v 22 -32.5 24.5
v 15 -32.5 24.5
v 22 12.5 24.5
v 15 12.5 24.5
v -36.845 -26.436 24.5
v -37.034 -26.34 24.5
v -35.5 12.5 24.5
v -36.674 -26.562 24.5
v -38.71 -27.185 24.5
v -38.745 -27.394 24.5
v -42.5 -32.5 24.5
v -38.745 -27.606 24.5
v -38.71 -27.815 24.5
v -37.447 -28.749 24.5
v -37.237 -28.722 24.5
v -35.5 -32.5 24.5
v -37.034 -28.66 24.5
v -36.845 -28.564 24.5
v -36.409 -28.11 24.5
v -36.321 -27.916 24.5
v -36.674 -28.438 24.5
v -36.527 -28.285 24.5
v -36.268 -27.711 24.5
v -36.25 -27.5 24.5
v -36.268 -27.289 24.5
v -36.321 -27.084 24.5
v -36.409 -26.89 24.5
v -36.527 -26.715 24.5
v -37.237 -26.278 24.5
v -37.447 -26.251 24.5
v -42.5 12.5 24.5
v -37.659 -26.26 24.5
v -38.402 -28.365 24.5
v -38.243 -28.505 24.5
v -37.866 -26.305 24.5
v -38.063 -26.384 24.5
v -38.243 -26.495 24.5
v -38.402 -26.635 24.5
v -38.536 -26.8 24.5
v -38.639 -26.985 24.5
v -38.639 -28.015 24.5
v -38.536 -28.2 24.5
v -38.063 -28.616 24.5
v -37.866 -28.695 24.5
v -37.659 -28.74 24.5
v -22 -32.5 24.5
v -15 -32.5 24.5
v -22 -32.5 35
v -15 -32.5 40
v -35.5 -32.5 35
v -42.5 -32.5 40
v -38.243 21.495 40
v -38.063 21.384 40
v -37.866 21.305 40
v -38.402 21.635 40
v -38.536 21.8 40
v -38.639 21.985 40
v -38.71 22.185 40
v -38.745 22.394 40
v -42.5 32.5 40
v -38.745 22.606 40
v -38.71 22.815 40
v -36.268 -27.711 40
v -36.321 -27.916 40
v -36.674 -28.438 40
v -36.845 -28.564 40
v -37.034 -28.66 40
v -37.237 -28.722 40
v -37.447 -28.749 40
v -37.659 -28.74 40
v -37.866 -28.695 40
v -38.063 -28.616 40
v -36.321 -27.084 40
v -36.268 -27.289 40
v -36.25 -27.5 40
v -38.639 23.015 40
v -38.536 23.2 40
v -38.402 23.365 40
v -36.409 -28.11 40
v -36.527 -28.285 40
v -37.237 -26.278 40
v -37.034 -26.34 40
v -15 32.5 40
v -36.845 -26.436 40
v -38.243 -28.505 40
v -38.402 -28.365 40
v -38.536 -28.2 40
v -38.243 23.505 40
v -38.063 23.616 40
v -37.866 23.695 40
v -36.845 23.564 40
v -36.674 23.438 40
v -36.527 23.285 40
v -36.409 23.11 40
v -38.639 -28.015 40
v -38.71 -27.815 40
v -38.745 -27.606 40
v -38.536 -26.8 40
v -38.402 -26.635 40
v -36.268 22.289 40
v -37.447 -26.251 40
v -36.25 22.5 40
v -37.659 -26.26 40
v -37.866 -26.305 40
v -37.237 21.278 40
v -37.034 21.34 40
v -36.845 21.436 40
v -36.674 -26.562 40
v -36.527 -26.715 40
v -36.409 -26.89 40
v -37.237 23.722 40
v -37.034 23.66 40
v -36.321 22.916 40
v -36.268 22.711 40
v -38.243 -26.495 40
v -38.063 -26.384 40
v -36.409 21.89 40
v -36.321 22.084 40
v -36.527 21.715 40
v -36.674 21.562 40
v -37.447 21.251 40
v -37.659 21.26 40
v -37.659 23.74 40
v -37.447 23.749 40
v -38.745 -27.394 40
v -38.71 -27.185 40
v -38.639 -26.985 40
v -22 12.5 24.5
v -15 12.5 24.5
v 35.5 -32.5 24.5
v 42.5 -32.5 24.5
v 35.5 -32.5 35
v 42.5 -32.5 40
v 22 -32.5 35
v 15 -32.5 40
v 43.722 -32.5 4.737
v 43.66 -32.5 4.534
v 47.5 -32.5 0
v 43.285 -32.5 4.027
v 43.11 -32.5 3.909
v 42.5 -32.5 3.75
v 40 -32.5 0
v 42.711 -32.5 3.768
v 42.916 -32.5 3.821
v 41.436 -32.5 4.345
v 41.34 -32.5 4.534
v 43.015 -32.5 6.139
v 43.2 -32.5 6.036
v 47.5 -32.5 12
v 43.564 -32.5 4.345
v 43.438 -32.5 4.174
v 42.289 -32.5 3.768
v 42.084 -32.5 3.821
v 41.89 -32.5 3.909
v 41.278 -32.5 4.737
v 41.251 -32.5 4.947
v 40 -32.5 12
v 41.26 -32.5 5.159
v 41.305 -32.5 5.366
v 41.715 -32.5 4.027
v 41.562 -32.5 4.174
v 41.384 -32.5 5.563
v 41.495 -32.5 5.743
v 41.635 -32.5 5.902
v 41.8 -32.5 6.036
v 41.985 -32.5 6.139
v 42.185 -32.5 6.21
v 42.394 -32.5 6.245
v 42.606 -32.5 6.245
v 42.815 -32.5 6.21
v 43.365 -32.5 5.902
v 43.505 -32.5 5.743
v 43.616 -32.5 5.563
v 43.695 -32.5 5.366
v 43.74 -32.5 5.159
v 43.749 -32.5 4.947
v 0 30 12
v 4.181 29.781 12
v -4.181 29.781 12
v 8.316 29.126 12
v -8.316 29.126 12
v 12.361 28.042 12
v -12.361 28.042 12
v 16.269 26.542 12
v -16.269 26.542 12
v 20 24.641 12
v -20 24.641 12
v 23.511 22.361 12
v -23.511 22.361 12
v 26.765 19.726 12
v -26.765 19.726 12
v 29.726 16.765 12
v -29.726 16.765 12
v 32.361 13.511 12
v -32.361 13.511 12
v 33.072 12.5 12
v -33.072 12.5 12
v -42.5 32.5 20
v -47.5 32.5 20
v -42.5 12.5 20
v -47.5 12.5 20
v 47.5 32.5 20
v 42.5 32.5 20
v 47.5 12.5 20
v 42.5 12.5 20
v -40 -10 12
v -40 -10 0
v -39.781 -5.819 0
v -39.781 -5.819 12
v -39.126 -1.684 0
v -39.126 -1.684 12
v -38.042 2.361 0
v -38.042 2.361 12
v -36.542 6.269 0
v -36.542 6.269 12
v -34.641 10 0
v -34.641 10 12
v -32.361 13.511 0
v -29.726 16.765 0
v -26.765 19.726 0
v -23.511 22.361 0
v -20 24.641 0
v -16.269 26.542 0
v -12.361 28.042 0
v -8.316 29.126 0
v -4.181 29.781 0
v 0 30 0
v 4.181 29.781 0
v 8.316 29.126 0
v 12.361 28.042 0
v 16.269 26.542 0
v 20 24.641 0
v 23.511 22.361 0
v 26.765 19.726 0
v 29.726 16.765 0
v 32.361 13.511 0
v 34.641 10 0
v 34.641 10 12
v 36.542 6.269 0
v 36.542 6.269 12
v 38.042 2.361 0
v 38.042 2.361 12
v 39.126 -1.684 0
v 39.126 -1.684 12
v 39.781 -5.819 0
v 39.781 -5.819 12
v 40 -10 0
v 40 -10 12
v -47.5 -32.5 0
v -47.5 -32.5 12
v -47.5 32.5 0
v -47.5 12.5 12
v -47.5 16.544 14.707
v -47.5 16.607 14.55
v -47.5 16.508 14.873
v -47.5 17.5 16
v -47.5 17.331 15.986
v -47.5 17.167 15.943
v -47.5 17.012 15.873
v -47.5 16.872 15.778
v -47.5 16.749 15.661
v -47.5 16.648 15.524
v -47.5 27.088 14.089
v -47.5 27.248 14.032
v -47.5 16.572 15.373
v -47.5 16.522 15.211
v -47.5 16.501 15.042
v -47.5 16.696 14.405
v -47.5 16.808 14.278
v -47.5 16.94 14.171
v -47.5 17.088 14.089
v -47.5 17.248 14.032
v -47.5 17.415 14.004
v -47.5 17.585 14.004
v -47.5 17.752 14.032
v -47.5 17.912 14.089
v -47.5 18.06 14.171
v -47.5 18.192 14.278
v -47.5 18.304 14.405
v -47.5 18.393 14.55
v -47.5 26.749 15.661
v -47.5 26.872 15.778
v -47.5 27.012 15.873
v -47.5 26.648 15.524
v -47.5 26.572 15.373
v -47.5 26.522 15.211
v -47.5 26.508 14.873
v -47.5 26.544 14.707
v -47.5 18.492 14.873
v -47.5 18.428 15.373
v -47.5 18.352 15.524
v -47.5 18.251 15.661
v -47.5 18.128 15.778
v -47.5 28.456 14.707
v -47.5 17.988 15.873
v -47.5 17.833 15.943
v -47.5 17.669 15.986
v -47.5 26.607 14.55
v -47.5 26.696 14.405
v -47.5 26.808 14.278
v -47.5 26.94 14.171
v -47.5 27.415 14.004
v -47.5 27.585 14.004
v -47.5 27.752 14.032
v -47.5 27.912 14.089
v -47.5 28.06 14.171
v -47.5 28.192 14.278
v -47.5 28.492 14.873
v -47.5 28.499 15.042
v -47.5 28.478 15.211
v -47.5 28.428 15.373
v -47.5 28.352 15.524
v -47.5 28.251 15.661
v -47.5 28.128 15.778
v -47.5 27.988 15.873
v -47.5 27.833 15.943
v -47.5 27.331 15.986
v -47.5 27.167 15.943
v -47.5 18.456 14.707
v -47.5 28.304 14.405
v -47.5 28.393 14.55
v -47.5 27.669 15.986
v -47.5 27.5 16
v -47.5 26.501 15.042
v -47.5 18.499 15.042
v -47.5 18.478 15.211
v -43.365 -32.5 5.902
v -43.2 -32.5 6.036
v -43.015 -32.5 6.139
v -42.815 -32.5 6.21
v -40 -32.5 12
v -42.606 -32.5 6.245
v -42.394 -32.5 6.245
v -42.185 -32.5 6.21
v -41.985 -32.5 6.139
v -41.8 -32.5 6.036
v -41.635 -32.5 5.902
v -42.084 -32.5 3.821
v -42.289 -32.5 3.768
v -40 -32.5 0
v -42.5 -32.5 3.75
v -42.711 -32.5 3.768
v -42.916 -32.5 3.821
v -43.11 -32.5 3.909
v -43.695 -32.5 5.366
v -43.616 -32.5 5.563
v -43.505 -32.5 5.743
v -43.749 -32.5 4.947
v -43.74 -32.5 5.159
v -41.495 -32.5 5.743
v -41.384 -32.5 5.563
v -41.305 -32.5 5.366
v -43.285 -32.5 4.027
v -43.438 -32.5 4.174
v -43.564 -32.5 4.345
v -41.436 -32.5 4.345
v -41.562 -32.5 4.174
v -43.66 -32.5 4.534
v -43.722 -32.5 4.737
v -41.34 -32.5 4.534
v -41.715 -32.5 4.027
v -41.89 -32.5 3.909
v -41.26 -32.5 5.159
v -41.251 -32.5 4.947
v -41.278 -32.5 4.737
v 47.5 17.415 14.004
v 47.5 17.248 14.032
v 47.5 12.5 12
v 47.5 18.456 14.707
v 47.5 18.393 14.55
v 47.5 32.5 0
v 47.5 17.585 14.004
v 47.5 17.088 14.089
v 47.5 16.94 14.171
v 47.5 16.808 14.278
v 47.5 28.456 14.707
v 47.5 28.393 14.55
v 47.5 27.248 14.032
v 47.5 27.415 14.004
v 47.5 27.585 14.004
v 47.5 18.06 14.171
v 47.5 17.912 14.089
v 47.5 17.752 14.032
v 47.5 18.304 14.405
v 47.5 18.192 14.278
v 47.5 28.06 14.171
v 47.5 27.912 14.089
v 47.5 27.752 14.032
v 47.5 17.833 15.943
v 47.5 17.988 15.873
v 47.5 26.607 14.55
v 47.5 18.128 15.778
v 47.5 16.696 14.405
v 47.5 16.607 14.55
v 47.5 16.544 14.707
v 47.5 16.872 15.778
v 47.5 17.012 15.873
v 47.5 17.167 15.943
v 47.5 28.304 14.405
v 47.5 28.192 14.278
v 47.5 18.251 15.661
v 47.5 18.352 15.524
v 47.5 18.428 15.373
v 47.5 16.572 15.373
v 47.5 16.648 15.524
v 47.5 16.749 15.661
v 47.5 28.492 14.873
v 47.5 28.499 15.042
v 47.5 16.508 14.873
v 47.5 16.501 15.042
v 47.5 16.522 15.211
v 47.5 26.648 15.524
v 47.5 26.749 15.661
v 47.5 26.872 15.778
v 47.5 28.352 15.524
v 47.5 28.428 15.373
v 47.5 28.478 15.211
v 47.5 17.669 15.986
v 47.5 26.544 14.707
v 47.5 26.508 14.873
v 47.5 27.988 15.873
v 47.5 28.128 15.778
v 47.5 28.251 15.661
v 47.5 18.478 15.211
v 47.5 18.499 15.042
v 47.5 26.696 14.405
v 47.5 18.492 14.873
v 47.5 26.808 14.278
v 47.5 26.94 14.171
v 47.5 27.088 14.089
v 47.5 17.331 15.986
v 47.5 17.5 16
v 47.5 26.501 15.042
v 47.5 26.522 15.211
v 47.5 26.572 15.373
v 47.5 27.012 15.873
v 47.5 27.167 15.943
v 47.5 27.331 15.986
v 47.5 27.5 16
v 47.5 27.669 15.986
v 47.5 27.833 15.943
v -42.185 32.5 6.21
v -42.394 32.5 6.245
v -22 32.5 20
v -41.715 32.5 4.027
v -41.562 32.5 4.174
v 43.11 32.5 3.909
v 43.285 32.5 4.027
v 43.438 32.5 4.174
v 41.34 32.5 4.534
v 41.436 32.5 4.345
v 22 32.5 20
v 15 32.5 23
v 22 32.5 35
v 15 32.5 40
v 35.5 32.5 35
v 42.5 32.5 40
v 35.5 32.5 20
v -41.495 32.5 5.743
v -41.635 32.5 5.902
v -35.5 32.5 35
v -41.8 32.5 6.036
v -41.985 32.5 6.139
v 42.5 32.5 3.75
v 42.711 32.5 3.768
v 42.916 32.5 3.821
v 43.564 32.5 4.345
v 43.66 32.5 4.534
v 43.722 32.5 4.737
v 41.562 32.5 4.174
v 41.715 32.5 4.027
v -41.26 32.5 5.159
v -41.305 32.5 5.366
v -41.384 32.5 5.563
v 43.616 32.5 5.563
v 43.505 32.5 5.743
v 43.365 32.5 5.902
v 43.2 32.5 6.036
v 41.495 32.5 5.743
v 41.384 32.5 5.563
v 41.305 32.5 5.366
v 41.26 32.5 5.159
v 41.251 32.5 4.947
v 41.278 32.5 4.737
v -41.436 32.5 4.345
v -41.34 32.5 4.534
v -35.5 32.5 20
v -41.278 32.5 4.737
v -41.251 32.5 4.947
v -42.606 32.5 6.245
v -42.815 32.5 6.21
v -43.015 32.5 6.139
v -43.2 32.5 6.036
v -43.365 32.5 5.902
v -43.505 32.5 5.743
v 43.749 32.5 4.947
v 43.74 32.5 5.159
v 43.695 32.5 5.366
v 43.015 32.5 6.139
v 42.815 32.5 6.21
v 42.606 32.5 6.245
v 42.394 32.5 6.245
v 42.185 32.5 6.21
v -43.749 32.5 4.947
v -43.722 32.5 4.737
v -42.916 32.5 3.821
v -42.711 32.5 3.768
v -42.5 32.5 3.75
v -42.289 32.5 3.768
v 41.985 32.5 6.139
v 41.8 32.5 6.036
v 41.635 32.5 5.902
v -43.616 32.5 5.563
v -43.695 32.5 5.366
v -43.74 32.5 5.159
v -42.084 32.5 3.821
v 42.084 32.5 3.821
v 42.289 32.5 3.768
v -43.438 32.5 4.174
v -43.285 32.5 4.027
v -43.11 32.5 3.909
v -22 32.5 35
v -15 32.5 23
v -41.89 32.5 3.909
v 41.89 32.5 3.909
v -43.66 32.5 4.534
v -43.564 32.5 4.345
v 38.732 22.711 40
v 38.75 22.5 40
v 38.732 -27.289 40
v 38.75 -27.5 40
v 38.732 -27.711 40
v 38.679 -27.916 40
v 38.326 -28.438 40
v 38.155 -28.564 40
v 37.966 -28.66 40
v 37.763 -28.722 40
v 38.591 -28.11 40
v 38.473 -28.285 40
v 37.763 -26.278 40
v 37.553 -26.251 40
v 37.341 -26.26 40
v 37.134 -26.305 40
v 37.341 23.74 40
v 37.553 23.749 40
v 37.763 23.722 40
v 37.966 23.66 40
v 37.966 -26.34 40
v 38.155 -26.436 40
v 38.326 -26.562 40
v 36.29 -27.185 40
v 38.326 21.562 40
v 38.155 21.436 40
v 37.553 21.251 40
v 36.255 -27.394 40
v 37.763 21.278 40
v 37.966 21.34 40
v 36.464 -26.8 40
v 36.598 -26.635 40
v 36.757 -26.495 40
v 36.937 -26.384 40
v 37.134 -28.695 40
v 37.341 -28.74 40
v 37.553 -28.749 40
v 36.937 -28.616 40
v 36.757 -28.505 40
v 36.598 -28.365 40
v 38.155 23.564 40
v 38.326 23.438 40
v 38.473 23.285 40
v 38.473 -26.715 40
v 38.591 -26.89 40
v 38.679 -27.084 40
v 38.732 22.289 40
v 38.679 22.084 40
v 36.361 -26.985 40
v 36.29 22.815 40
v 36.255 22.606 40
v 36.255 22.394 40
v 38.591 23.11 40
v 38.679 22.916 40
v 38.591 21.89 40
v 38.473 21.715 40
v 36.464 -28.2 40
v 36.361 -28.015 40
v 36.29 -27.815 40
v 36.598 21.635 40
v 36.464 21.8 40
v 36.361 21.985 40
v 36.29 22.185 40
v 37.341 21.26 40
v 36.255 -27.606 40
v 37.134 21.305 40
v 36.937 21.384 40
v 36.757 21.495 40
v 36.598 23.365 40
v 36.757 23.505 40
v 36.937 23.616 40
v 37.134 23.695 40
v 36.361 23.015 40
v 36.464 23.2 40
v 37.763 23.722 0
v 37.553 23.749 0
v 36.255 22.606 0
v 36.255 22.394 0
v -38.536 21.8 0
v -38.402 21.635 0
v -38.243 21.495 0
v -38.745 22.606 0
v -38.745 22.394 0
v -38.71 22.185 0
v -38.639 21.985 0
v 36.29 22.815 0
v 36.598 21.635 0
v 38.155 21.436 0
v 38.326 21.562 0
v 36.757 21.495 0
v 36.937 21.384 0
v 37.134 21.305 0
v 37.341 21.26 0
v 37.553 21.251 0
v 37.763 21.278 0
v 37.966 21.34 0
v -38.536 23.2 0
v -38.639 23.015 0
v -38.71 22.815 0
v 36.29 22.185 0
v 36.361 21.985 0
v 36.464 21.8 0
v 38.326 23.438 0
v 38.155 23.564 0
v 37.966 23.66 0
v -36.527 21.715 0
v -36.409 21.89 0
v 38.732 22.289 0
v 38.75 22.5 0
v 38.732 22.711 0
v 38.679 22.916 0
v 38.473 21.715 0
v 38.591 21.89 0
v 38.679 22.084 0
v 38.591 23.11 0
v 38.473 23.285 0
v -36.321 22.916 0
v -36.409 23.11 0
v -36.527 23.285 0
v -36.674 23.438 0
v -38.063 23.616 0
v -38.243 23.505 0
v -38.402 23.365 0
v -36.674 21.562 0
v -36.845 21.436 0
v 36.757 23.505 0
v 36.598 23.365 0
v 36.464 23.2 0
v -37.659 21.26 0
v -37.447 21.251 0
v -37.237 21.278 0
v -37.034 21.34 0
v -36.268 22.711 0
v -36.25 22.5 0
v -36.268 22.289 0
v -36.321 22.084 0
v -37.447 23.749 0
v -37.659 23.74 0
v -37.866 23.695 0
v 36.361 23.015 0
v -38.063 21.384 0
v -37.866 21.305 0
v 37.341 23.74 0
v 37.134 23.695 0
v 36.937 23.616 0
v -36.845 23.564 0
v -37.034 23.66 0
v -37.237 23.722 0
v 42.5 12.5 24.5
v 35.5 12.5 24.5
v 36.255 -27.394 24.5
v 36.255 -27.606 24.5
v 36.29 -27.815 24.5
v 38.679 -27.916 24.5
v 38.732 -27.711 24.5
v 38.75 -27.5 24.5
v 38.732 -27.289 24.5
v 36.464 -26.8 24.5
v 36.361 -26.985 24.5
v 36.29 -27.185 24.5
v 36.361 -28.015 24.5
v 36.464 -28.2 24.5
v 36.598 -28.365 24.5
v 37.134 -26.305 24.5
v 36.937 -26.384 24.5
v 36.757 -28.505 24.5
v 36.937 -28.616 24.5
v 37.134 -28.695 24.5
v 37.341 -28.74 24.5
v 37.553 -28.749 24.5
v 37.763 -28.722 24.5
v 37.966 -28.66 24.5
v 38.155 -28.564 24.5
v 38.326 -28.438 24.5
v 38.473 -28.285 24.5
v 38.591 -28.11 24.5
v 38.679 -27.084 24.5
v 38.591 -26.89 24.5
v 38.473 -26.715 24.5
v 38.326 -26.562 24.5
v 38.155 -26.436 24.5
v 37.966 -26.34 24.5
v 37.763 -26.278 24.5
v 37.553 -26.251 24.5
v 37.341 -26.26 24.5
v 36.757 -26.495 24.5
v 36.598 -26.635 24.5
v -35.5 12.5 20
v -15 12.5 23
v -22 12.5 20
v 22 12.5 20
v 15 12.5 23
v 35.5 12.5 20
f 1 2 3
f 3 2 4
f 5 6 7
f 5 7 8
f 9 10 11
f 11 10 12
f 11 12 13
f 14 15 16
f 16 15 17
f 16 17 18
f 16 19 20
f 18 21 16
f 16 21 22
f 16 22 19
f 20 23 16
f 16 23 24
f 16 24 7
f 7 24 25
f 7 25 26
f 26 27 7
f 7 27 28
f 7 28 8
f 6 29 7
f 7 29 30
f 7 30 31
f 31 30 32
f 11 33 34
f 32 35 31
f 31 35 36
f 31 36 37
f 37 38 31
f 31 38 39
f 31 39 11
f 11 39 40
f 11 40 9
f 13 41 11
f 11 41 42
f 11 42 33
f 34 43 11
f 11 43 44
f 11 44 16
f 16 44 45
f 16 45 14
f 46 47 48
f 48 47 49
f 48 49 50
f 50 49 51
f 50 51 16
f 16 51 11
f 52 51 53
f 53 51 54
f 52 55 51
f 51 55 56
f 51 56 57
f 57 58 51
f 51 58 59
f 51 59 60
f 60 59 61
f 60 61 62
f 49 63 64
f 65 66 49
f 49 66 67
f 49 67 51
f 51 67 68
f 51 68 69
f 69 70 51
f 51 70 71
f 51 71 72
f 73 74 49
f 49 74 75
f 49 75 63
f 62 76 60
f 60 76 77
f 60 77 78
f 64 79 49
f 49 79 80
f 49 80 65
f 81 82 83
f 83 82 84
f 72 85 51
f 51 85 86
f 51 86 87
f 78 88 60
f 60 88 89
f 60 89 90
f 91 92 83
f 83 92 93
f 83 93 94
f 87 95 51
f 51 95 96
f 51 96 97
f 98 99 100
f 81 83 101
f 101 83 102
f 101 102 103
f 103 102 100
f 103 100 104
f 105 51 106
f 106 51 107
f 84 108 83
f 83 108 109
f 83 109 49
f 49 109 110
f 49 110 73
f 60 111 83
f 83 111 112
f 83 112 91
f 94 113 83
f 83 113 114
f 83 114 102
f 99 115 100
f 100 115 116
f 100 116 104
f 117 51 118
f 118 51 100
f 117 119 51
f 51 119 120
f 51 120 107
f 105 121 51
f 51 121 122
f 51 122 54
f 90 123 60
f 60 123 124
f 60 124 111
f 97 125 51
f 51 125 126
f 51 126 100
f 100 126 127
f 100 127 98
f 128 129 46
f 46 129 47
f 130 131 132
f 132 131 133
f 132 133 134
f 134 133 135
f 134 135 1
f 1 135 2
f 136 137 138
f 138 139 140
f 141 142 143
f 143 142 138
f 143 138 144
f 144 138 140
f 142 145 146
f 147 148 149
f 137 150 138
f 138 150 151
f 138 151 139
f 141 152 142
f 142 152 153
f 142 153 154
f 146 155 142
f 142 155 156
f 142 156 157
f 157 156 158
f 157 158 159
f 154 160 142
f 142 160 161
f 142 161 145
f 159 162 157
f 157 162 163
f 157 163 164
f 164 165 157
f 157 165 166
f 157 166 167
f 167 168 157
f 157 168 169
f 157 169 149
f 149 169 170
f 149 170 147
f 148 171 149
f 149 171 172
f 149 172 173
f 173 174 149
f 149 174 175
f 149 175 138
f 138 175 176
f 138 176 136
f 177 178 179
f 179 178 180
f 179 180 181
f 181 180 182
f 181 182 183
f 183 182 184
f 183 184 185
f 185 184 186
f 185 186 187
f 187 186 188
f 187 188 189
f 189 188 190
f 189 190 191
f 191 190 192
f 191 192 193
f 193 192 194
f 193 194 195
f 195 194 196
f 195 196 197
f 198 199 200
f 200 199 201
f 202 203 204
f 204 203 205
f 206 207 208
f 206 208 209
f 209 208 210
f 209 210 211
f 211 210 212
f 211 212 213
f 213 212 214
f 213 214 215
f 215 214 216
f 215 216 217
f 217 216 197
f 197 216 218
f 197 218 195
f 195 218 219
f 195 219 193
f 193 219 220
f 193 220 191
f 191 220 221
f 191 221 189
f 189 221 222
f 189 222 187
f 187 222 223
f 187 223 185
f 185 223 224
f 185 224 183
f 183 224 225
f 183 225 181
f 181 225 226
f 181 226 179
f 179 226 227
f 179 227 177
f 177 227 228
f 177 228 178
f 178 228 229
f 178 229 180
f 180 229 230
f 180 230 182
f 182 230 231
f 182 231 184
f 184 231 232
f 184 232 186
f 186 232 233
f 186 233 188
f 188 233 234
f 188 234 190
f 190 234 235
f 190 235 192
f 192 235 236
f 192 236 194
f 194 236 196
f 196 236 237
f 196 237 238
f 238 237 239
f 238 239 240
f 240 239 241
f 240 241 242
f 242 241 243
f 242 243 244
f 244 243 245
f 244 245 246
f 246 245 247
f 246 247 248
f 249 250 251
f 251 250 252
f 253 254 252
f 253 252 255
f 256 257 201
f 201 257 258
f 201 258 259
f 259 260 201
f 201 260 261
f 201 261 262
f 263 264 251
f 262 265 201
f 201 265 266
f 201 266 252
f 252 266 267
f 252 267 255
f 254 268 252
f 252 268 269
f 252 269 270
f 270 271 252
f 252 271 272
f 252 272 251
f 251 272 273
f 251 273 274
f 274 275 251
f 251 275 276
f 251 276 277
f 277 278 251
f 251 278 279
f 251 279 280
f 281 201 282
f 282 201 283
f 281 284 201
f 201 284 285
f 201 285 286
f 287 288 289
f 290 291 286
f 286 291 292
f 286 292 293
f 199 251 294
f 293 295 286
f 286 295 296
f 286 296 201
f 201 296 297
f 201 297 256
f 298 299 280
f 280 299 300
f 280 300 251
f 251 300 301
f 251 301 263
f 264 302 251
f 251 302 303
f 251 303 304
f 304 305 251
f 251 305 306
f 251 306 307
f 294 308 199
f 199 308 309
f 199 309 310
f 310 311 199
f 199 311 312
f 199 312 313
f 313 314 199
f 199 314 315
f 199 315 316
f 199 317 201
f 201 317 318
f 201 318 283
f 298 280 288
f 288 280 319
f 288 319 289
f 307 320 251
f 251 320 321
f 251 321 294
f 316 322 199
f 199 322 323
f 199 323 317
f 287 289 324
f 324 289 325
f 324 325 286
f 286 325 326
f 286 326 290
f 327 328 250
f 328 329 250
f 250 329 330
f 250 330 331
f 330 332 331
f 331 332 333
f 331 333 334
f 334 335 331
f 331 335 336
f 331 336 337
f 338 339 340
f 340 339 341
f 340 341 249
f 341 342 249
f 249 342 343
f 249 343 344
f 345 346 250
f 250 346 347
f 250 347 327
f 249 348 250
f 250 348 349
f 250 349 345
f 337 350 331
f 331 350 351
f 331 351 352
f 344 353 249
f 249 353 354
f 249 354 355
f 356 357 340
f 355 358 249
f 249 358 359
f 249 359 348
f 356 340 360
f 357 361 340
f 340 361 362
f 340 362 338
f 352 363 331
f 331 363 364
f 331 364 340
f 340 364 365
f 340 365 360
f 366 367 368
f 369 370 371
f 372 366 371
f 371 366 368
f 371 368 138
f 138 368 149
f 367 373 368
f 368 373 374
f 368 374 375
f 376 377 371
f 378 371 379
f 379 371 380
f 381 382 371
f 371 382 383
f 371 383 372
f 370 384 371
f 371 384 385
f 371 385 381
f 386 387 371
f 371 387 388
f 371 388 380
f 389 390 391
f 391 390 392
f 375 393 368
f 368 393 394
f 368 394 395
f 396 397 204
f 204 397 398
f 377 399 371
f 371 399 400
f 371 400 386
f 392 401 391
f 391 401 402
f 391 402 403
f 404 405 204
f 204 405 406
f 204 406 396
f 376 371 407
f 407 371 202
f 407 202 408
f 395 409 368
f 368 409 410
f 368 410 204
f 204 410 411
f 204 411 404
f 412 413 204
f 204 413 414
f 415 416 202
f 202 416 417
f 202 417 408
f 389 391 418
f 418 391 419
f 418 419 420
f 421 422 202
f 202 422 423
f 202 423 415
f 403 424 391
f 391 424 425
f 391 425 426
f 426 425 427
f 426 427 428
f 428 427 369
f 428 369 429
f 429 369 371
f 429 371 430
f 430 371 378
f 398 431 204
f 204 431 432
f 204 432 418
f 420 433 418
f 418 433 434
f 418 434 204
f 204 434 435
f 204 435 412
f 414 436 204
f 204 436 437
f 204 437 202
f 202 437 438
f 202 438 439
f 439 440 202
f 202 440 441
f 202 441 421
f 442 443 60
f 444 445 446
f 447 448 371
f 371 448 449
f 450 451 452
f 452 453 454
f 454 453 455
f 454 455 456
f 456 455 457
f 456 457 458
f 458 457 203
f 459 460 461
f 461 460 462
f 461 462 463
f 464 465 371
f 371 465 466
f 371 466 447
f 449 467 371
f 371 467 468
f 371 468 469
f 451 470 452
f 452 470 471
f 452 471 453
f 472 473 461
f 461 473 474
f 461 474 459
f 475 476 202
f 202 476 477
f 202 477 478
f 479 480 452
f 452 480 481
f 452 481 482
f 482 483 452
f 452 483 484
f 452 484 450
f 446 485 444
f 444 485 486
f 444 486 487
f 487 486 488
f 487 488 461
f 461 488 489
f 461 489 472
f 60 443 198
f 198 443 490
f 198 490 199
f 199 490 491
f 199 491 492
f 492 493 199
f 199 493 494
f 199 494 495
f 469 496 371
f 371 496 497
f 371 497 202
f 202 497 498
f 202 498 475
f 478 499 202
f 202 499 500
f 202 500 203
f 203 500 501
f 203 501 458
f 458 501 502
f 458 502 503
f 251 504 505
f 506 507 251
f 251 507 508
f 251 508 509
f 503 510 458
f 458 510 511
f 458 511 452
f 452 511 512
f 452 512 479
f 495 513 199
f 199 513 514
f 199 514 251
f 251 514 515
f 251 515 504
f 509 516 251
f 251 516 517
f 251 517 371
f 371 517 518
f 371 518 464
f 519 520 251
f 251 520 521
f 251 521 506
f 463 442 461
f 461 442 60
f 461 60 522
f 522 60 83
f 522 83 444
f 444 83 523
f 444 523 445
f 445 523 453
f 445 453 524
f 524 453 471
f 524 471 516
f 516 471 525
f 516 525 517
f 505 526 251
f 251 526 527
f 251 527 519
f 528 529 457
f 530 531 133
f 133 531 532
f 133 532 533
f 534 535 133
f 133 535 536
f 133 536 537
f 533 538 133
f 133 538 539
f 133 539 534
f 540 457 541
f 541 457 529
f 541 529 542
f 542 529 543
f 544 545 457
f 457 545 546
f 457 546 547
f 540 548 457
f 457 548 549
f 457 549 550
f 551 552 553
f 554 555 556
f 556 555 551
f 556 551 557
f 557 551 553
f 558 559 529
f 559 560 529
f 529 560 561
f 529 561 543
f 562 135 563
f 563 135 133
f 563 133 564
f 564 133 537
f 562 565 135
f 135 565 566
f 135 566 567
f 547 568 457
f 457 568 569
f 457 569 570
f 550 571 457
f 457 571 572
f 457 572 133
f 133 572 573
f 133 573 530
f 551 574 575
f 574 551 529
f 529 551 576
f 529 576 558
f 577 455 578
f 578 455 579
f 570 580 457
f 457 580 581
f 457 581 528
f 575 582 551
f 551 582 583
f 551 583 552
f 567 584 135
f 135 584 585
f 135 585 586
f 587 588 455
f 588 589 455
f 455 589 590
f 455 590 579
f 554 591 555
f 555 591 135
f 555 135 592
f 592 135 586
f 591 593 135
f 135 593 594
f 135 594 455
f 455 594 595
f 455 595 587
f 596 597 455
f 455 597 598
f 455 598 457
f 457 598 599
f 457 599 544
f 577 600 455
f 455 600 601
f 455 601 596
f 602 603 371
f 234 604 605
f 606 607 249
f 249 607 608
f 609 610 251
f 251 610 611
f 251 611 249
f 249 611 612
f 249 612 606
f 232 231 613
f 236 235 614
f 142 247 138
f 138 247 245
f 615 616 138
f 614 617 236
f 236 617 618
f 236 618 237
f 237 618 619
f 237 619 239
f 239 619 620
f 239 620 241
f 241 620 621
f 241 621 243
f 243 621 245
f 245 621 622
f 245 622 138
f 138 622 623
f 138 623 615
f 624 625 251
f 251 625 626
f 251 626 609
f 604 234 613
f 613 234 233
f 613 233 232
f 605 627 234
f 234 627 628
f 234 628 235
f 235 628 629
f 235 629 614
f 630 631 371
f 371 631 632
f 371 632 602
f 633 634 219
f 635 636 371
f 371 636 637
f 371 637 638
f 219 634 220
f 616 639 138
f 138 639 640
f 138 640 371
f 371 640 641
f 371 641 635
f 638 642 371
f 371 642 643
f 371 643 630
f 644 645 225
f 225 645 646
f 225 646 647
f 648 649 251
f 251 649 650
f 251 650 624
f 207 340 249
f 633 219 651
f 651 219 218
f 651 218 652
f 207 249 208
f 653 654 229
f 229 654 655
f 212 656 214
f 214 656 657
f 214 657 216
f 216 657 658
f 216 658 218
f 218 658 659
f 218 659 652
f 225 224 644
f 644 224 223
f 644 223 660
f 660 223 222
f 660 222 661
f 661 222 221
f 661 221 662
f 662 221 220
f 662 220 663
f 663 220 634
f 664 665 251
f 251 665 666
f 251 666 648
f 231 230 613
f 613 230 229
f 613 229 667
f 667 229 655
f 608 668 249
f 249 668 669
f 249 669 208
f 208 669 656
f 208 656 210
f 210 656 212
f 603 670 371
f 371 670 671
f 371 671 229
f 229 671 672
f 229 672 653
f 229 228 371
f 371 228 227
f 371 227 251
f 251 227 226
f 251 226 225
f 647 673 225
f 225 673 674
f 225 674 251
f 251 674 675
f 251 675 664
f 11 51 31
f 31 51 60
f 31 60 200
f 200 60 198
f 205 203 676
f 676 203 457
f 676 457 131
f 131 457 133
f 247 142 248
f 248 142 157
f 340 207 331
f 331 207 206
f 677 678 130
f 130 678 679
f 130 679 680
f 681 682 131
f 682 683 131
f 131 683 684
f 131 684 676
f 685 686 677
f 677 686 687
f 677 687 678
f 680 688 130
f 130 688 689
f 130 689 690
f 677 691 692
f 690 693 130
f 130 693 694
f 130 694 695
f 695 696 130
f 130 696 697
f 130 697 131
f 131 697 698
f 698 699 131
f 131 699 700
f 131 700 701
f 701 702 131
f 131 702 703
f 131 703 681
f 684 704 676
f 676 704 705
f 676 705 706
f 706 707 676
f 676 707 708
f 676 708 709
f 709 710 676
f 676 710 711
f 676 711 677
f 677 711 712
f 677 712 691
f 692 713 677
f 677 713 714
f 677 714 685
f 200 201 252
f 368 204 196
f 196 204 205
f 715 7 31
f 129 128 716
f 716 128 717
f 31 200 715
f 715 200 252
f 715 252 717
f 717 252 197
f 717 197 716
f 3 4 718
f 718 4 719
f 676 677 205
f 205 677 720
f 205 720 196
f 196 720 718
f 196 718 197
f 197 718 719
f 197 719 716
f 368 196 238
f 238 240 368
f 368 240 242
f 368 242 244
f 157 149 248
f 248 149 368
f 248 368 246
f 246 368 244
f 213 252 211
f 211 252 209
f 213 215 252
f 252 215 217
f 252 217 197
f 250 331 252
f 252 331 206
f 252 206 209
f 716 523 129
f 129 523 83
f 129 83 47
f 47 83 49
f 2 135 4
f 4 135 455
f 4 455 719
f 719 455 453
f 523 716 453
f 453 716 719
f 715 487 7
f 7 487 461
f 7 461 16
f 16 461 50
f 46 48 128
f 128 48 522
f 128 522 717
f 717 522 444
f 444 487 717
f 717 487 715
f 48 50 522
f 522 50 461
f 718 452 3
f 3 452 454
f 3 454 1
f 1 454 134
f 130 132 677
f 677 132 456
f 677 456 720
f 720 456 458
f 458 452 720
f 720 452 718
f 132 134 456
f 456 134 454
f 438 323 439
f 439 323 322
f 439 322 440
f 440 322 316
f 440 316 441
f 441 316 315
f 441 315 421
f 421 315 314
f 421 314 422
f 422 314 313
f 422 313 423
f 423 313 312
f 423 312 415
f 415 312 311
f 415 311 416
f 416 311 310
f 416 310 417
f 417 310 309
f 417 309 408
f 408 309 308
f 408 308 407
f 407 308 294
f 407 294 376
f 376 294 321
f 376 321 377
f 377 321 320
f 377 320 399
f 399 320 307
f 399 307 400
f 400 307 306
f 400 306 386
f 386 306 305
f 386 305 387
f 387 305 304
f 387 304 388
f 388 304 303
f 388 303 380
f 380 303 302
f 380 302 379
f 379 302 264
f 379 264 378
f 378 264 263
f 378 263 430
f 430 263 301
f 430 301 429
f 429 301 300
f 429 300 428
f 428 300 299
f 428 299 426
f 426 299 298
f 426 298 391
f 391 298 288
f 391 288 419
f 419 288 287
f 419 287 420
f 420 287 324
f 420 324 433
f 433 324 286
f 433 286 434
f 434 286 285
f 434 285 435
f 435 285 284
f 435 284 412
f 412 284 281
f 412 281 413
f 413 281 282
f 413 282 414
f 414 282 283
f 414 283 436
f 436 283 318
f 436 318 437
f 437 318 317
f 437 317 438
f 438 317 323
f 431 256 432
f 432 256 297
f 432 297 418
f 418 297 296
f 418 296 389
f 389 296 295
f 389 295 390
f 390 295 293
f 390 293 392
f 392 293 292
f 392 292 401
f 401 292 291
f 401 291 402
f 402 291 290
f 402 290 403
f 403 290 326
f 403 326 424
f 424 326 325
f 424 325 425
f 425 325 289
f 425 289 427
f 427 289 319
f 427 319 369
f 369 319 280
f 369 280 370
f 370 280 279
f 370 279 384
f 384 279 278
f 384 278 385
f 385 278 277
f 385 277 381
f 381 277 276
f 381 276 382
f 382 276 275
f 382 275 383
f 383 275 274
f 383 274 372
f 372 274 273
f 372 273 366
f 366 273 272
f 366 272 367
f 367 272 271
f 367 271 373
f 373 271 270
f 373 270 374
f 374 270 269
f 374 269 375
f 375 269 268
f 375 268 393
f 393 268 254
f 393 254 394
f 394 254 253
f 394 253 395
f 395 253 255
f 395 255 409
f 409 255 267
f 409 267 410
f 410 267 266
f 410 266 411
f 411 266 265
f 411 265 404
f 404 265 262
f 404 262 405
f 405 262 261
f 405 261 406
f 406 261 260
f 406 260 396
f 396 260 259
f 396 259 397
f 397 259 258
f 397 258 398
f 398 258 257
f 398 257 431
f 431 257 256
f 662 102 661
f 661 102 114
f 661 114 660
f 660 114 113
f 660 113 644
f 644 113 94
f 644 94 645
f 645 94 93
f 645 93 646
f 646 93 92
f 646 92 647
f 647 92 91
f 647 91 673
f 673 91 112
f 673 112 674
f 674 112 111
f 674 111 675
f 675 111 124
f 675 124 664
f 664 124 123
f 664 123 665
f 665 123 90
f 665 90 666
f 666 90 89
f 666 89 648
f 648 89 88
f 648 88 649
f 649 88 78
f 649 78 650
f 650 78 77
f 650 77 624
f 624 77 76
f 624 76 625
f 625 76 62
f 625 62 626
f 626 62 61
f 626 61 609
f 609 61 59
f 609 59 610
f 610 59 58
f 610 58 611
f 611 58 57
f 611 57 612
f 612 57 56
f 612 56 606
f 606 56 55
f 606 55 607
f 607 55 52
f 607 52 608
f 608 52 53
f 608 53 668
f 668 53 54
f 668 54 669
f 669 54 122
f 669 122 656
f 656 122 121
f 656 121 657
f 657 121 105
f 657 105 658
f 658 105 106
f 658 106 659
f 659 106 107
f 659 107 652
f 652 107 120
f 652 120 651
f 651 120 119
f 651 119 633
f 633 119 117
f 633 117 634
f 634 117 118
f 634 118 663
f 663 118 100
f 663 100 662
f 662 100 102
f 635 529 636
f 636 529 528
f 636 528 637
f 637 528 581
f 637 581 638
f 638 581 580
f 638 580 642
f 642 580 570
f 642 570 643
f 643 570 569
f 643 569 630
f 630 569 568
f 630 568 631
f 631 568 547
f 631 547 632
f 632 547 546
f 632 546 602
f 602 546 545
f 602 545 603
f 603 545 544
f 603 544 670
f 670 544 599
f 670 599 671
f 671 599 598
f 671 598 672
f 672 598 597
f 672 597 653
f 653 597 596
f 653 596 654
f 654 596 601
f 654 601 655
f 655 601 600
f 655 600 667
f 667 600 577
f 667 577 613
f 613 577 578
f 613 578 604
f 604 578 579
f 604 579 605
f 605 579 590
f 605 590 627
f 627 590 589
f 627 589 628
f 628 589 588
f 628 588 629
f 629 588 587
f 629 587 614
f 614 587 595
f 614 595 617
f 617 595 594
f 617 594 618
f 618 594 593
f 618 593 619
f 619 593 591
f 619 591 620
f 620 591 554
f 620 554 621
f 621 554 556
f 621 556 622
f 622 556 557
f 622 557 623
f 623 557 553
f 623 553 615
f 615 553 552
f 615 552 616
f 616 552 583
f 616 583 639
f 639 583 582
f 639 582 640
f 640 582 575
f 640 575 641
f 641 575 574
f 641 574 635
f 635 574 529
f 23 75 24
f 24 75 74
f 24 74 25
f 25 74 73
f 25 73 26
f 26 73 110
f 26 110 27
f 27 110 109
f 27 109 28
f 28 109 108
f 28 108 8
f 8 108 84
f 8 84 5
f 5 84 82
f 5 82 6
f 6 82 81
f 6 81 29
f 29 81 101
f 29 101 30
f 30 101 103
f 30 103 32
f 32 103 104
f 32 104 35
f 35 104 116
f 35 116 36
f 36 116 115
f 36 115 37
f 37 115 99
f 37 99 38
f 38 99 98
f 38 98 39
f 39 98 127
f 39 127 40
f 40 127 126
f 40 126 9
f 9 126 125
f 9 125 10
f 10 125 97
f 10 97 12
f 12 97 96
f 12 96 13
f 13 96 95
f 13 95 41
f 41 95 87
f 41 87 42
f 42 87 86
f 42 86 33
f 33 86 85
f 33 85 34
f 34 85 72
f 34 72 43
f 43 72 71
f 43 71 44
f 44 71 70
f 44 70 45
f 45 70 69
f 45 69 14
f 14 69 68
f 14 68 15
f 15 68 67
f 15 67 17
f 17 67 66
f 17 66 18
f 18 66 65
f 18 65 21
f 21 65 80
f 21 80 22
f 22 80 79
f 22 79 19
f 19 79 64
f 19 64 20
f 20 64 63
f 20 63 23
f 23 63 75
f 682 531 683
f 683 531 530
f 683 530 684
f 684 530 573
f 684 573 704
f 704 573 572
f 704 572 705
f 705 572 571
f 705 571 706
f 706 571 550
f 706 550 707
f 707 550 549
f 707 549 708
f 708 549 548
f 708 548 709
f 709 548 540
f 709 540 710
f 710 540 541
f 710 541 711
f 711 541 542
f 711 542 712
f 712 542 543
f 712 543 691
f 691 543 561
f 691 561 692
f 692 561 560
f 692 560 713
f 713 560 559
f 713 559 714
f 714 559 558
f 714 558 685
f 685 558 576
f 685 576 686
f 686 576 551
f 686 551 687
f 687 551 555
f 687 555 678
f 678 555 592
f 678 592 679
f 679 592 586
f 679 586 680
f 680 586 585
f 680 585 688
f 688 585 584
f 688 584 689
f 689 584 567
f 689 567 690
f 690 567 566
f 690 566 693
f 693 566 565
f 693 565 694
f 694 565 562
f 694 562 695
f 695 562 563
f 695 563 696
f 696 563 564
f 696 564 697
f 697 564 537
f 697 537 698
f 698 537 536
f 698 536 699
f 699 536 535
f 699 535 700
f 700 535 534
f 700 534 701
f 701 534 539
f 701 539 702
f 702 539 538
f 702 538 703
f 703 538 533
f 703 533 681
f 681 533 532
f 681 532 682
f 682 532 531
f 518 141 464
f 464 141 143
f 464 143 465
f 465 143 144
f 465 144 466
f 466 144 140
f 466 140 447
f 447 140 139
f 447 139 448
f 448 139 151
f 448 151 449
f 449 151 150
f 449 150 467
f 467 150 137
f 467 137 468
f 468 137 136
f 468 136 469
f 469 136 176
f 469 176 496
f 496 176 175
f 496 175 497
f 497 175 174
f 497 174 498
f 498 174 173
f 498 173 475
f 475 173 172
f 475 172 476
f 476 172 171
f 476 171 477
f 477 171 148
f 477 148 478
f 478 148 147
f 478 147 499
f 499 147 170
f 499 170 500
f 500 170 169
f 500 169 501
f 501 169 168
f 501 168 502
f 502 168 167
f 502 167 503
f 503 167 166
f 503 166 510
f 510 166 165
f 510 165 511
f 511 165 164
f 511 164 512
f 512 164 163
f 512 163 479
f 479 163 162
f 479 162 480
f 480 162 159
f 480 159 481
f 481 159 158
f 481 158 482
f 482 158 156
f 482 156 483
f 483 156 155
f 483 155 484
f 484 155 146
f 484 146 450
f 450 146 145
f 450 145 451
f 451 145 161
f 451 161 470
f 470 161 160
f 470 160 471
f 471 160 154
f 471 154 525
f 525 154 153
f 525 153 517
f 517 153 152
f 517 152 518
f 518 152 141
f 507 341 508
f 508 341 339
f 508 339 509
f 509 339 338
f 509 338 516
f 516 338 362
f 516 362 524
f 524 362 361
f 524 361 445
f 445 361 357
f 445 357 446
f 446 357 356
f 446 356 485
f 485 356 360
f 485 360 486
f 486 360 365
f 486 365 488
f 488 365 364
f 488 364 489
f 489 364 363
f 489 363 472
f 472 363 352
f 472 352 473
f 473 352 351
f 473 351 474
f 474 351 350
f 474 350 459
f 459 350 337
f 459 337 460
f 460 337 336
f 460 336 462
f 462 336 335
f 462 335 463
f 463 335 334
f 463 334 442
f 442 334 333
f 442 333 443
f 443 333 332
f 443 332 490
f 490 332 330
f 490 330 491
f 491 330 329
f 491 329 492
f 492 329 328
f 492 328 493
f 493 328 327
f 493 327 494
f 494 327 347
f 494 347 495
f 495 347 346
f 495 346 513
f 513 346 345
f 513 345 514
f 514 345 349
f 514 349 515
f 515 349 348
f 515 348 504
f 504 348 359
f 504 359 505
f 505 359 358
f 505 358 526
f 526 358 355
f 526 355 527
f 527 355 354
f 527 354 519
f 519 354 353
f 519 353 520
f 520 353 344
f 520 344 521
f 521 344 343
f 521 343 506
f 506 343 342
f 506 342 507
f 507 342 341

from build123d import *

# Parameters (mm, degrees)
ESQUISSE1_W              = 95
ESQUISSE1_H              = 65
BOSS_EXTRU_1_DEPTH       = 40
ESQUISSE3_R              = 40
ENL_V_MAT_EXTRU_1_DEPTH  = 12
ESQUISSE5_W              = 5
ESQUISSE5_H              = 20
ENL_V_MAT_EXTRU_2_DEPTH  = 90.895772982
ESQUISSE6_W              = 5
ESQUISSE6_H              = 20
ENL_V_MAT_EXTRU_3_DEPTH  = 90.895772982
ESQUISSE7_W              = 80
ESQUISSE7_H              = 22.5
ENL_V_MAT_EXTRU_4_DEPTH  = 12
ESQUISSE8_W              = 95
ESQUISSE8_H              = 12.5
ENL_V_MAT_EXTRU_5_DEPTH  = 45
ESQUISSE10_W             = 30
ESQUISSE10_H             = 65
ENL_V_MAT_EXTRU_6_DEPTH  = 17
ESQUISSE11_W             = 13.5
ESQUISSE11_H             = 15
ENL_V_MAT_EXTRU_7_DEPTH  = 90.895772982
ESQUISSE12_W             = 13.5
ESQUISSE12_H             = 15
ENL_V_MAT_EXTRU_8_DEPTH  = 90.895772982
ESQUISSE14_R             = 1
ENL_V_MAT_EXTRU_9_DEPTH  = 109.079831606
ESQUISSE15_R             = 1.25
ENL_V_MAT_EXTRU_10_DEPTH = 71.089228844
ESQUISSE16_R             = 1.25
ENL_V_MAT_EXTRU_11_DEPTH = 90.895772982


with BuildPart() as part:
    # Esquisse1 → Boss.-Extru.1 (new body)
    with BuildSketch(Plane.XY):
        Rectangle(ESQUISSE1_W, ESQUISSE1_H)
    extrude(amount=BOSS_EXTRU_1_DEPTH)

    # Esquisse3 → Enlèv. mat.-Extru.1 (cut)
    with BuildSketch(Plane(origin=(0, 0, 0), x_dir=(-1, 0, 0), z_dir=(0, 0, -1))):
        with Locations((0, -10)):
            Circle(ESQUISSE3_R)
    extrude(amount=-ENL_V_MAT_EXTRU_1_DEPTH, mode=Mode.SUBTRACT)

    # Esquisse5 → Enlèv. mat.-Extru.2 (cut, through all)
    with BuildSketch(Plane(origin=(0, 32.5, 0), x_dir=(1, 0, 0), z_dir=(0, 1, 0))):
        with Locations((-45, -30)):
            Rectangle(ESQUISSE5_W, ESQUISSE5_H)
    extrude(amount=-ENL_V_MAT_EXTRU_2_DEPTH, mode=Mode.SUBTRACT)

    # Esquisse6 → Enlèv. mat.-Extru.3 (cut, through all)
    with BuildSketch(Plane(origin=(0, 32.5, 0), x_dir=(1, 0, 0), z_dir=(0, 1, 0))):
        with Locations((45, -30)):
            Rectangle(ESQUISSE6_W, ESQUISSE6_H)
    extrude(amount=-ENL_V_MAT_EXTRU_3_DEPTH, mode=Mode.SUBTRACT)

    # Esquisse7 → Enlèv. mat.-Extru.4 (cut)
    with BuildSketch(Plane(origin=(0, 0, 0), x_dir=(-1, 0, 0), z_dir=(0, 0, -1))):
        with Locations((0, -21.25)):
            Rectangle(ESQUISSE7_W, ESQUISSE7_H)
    extrude(amount=-ENL_V_MAT_EXTRU_4_DEPTH, mode=Mode.SUBTRACT)

    # Esquisse8 → Enlèv. mat.-Extru.5 (cut)
    with BuildSketch(Plane.XZ.offset(32.5)):
        with Locations((0, 18.25)):
            Rectangle(ESQUISSE8_W, ESQUISSE8_H)
    extrude(amount=-ENL_V_MAT_EXTRU_5_DEPTH, mode=Mode.SUBTRACT)

    # Esquisse10 → Enlèv. mat.-Extru.6 (cut)
    with BuildSketch(Plane.XY.offset(40)):
        Rectangle(ESQUISSE10_W, ESQUISSE10_H)
    extrude(amount=-ENL_V_MAT_EXTRU_6_DEPTH, mode=Mode.SUBTRACT)

    # Esquisse11 → Enlèv. mat.-Extru.7 (cut, through all)
    with BuildSketch(Plane(origin=(0, 32.5, 0), x_dir=(1, 0, 0), z_dir=(0, 1, 0))):
        with Locations((-28.75, -27.5)):
            Rectangle(ESQUISSE11_W, ESQUISSE11_H)
    extrude(amount=-ENL_V_MAT_EXTRU_7_DEPTH, mode=Mode.SUBTRACT)

    # Esquisse12 → Enlèv. mat.-Extru.8 (cut, through all)
    with BuildSketch(Plane(origin=(0, 32.5, 0), x_dir=(1, 0, 0), z_dir=(0, 1, 0))):
        with Locations((28.75, -27.5)):
            Rectangle(ESQUISSE12_W, ESQUISSE12_H)
    extrude(amount=-ENL_V_MAT_EXTRU_8_DEPTH, mode=Mode.SUBTRACT)

    # Esquisse14 → Enlèv. mat.-Extru.9 (cut, through all)
    with BuildSketch(Plane.ZY.offset(47.5)):
        with Locations((15, 27.5)):
            Circle(ESQUISSE14_R)
        with Locations((15, 17.5)):
            Circle(ESQUISSE14_R)
    extrude(amount=-ENL_V_MAT_EXTRU_9_DEPTH, mode=Mode.SUBTRACT)

    # Esquisse15 → Enlèv. mat.-Extru.10 (cut, through all)
    with BuildSketch(Plane.XY.offset(40)):
        with Locations((-37.5, 22.5)):
            Circle(ESQUISSE15_R)
        with Locations((37.5, 22.5)):
            Circle(ESQUISSE15_R)
        with Locations((-37.5, -27.5)):
            Circle(ESQUISSE15_R)
        with Locations((37.5, -27.5)):
            Circle(ESQUISSE15_R)
    extrude(amount=-ENL_V_MAT_EXTRU_10_DEPTH, mode=Mode.SUBTRACT)

    # Esquisse16 → Enlèv. mat.-Extru.11 (cut, through all)
    with BuildSketch(Plane.XZ.offset(32.5)):
        with Locations(Location((42.5, 5, 0), (0, 0, 270))):
            Circle(ESQUISSE16_R)
        with Locations(Location((-42.5, 5, 0), (0, 0, 270))):
            Circle(ESQUISSE16_R)
    extrude(amount=-ENL_V_MAT_EXTRU_11_DEPTH, mode=Mode.SUBTRACT)


solid = part.part
